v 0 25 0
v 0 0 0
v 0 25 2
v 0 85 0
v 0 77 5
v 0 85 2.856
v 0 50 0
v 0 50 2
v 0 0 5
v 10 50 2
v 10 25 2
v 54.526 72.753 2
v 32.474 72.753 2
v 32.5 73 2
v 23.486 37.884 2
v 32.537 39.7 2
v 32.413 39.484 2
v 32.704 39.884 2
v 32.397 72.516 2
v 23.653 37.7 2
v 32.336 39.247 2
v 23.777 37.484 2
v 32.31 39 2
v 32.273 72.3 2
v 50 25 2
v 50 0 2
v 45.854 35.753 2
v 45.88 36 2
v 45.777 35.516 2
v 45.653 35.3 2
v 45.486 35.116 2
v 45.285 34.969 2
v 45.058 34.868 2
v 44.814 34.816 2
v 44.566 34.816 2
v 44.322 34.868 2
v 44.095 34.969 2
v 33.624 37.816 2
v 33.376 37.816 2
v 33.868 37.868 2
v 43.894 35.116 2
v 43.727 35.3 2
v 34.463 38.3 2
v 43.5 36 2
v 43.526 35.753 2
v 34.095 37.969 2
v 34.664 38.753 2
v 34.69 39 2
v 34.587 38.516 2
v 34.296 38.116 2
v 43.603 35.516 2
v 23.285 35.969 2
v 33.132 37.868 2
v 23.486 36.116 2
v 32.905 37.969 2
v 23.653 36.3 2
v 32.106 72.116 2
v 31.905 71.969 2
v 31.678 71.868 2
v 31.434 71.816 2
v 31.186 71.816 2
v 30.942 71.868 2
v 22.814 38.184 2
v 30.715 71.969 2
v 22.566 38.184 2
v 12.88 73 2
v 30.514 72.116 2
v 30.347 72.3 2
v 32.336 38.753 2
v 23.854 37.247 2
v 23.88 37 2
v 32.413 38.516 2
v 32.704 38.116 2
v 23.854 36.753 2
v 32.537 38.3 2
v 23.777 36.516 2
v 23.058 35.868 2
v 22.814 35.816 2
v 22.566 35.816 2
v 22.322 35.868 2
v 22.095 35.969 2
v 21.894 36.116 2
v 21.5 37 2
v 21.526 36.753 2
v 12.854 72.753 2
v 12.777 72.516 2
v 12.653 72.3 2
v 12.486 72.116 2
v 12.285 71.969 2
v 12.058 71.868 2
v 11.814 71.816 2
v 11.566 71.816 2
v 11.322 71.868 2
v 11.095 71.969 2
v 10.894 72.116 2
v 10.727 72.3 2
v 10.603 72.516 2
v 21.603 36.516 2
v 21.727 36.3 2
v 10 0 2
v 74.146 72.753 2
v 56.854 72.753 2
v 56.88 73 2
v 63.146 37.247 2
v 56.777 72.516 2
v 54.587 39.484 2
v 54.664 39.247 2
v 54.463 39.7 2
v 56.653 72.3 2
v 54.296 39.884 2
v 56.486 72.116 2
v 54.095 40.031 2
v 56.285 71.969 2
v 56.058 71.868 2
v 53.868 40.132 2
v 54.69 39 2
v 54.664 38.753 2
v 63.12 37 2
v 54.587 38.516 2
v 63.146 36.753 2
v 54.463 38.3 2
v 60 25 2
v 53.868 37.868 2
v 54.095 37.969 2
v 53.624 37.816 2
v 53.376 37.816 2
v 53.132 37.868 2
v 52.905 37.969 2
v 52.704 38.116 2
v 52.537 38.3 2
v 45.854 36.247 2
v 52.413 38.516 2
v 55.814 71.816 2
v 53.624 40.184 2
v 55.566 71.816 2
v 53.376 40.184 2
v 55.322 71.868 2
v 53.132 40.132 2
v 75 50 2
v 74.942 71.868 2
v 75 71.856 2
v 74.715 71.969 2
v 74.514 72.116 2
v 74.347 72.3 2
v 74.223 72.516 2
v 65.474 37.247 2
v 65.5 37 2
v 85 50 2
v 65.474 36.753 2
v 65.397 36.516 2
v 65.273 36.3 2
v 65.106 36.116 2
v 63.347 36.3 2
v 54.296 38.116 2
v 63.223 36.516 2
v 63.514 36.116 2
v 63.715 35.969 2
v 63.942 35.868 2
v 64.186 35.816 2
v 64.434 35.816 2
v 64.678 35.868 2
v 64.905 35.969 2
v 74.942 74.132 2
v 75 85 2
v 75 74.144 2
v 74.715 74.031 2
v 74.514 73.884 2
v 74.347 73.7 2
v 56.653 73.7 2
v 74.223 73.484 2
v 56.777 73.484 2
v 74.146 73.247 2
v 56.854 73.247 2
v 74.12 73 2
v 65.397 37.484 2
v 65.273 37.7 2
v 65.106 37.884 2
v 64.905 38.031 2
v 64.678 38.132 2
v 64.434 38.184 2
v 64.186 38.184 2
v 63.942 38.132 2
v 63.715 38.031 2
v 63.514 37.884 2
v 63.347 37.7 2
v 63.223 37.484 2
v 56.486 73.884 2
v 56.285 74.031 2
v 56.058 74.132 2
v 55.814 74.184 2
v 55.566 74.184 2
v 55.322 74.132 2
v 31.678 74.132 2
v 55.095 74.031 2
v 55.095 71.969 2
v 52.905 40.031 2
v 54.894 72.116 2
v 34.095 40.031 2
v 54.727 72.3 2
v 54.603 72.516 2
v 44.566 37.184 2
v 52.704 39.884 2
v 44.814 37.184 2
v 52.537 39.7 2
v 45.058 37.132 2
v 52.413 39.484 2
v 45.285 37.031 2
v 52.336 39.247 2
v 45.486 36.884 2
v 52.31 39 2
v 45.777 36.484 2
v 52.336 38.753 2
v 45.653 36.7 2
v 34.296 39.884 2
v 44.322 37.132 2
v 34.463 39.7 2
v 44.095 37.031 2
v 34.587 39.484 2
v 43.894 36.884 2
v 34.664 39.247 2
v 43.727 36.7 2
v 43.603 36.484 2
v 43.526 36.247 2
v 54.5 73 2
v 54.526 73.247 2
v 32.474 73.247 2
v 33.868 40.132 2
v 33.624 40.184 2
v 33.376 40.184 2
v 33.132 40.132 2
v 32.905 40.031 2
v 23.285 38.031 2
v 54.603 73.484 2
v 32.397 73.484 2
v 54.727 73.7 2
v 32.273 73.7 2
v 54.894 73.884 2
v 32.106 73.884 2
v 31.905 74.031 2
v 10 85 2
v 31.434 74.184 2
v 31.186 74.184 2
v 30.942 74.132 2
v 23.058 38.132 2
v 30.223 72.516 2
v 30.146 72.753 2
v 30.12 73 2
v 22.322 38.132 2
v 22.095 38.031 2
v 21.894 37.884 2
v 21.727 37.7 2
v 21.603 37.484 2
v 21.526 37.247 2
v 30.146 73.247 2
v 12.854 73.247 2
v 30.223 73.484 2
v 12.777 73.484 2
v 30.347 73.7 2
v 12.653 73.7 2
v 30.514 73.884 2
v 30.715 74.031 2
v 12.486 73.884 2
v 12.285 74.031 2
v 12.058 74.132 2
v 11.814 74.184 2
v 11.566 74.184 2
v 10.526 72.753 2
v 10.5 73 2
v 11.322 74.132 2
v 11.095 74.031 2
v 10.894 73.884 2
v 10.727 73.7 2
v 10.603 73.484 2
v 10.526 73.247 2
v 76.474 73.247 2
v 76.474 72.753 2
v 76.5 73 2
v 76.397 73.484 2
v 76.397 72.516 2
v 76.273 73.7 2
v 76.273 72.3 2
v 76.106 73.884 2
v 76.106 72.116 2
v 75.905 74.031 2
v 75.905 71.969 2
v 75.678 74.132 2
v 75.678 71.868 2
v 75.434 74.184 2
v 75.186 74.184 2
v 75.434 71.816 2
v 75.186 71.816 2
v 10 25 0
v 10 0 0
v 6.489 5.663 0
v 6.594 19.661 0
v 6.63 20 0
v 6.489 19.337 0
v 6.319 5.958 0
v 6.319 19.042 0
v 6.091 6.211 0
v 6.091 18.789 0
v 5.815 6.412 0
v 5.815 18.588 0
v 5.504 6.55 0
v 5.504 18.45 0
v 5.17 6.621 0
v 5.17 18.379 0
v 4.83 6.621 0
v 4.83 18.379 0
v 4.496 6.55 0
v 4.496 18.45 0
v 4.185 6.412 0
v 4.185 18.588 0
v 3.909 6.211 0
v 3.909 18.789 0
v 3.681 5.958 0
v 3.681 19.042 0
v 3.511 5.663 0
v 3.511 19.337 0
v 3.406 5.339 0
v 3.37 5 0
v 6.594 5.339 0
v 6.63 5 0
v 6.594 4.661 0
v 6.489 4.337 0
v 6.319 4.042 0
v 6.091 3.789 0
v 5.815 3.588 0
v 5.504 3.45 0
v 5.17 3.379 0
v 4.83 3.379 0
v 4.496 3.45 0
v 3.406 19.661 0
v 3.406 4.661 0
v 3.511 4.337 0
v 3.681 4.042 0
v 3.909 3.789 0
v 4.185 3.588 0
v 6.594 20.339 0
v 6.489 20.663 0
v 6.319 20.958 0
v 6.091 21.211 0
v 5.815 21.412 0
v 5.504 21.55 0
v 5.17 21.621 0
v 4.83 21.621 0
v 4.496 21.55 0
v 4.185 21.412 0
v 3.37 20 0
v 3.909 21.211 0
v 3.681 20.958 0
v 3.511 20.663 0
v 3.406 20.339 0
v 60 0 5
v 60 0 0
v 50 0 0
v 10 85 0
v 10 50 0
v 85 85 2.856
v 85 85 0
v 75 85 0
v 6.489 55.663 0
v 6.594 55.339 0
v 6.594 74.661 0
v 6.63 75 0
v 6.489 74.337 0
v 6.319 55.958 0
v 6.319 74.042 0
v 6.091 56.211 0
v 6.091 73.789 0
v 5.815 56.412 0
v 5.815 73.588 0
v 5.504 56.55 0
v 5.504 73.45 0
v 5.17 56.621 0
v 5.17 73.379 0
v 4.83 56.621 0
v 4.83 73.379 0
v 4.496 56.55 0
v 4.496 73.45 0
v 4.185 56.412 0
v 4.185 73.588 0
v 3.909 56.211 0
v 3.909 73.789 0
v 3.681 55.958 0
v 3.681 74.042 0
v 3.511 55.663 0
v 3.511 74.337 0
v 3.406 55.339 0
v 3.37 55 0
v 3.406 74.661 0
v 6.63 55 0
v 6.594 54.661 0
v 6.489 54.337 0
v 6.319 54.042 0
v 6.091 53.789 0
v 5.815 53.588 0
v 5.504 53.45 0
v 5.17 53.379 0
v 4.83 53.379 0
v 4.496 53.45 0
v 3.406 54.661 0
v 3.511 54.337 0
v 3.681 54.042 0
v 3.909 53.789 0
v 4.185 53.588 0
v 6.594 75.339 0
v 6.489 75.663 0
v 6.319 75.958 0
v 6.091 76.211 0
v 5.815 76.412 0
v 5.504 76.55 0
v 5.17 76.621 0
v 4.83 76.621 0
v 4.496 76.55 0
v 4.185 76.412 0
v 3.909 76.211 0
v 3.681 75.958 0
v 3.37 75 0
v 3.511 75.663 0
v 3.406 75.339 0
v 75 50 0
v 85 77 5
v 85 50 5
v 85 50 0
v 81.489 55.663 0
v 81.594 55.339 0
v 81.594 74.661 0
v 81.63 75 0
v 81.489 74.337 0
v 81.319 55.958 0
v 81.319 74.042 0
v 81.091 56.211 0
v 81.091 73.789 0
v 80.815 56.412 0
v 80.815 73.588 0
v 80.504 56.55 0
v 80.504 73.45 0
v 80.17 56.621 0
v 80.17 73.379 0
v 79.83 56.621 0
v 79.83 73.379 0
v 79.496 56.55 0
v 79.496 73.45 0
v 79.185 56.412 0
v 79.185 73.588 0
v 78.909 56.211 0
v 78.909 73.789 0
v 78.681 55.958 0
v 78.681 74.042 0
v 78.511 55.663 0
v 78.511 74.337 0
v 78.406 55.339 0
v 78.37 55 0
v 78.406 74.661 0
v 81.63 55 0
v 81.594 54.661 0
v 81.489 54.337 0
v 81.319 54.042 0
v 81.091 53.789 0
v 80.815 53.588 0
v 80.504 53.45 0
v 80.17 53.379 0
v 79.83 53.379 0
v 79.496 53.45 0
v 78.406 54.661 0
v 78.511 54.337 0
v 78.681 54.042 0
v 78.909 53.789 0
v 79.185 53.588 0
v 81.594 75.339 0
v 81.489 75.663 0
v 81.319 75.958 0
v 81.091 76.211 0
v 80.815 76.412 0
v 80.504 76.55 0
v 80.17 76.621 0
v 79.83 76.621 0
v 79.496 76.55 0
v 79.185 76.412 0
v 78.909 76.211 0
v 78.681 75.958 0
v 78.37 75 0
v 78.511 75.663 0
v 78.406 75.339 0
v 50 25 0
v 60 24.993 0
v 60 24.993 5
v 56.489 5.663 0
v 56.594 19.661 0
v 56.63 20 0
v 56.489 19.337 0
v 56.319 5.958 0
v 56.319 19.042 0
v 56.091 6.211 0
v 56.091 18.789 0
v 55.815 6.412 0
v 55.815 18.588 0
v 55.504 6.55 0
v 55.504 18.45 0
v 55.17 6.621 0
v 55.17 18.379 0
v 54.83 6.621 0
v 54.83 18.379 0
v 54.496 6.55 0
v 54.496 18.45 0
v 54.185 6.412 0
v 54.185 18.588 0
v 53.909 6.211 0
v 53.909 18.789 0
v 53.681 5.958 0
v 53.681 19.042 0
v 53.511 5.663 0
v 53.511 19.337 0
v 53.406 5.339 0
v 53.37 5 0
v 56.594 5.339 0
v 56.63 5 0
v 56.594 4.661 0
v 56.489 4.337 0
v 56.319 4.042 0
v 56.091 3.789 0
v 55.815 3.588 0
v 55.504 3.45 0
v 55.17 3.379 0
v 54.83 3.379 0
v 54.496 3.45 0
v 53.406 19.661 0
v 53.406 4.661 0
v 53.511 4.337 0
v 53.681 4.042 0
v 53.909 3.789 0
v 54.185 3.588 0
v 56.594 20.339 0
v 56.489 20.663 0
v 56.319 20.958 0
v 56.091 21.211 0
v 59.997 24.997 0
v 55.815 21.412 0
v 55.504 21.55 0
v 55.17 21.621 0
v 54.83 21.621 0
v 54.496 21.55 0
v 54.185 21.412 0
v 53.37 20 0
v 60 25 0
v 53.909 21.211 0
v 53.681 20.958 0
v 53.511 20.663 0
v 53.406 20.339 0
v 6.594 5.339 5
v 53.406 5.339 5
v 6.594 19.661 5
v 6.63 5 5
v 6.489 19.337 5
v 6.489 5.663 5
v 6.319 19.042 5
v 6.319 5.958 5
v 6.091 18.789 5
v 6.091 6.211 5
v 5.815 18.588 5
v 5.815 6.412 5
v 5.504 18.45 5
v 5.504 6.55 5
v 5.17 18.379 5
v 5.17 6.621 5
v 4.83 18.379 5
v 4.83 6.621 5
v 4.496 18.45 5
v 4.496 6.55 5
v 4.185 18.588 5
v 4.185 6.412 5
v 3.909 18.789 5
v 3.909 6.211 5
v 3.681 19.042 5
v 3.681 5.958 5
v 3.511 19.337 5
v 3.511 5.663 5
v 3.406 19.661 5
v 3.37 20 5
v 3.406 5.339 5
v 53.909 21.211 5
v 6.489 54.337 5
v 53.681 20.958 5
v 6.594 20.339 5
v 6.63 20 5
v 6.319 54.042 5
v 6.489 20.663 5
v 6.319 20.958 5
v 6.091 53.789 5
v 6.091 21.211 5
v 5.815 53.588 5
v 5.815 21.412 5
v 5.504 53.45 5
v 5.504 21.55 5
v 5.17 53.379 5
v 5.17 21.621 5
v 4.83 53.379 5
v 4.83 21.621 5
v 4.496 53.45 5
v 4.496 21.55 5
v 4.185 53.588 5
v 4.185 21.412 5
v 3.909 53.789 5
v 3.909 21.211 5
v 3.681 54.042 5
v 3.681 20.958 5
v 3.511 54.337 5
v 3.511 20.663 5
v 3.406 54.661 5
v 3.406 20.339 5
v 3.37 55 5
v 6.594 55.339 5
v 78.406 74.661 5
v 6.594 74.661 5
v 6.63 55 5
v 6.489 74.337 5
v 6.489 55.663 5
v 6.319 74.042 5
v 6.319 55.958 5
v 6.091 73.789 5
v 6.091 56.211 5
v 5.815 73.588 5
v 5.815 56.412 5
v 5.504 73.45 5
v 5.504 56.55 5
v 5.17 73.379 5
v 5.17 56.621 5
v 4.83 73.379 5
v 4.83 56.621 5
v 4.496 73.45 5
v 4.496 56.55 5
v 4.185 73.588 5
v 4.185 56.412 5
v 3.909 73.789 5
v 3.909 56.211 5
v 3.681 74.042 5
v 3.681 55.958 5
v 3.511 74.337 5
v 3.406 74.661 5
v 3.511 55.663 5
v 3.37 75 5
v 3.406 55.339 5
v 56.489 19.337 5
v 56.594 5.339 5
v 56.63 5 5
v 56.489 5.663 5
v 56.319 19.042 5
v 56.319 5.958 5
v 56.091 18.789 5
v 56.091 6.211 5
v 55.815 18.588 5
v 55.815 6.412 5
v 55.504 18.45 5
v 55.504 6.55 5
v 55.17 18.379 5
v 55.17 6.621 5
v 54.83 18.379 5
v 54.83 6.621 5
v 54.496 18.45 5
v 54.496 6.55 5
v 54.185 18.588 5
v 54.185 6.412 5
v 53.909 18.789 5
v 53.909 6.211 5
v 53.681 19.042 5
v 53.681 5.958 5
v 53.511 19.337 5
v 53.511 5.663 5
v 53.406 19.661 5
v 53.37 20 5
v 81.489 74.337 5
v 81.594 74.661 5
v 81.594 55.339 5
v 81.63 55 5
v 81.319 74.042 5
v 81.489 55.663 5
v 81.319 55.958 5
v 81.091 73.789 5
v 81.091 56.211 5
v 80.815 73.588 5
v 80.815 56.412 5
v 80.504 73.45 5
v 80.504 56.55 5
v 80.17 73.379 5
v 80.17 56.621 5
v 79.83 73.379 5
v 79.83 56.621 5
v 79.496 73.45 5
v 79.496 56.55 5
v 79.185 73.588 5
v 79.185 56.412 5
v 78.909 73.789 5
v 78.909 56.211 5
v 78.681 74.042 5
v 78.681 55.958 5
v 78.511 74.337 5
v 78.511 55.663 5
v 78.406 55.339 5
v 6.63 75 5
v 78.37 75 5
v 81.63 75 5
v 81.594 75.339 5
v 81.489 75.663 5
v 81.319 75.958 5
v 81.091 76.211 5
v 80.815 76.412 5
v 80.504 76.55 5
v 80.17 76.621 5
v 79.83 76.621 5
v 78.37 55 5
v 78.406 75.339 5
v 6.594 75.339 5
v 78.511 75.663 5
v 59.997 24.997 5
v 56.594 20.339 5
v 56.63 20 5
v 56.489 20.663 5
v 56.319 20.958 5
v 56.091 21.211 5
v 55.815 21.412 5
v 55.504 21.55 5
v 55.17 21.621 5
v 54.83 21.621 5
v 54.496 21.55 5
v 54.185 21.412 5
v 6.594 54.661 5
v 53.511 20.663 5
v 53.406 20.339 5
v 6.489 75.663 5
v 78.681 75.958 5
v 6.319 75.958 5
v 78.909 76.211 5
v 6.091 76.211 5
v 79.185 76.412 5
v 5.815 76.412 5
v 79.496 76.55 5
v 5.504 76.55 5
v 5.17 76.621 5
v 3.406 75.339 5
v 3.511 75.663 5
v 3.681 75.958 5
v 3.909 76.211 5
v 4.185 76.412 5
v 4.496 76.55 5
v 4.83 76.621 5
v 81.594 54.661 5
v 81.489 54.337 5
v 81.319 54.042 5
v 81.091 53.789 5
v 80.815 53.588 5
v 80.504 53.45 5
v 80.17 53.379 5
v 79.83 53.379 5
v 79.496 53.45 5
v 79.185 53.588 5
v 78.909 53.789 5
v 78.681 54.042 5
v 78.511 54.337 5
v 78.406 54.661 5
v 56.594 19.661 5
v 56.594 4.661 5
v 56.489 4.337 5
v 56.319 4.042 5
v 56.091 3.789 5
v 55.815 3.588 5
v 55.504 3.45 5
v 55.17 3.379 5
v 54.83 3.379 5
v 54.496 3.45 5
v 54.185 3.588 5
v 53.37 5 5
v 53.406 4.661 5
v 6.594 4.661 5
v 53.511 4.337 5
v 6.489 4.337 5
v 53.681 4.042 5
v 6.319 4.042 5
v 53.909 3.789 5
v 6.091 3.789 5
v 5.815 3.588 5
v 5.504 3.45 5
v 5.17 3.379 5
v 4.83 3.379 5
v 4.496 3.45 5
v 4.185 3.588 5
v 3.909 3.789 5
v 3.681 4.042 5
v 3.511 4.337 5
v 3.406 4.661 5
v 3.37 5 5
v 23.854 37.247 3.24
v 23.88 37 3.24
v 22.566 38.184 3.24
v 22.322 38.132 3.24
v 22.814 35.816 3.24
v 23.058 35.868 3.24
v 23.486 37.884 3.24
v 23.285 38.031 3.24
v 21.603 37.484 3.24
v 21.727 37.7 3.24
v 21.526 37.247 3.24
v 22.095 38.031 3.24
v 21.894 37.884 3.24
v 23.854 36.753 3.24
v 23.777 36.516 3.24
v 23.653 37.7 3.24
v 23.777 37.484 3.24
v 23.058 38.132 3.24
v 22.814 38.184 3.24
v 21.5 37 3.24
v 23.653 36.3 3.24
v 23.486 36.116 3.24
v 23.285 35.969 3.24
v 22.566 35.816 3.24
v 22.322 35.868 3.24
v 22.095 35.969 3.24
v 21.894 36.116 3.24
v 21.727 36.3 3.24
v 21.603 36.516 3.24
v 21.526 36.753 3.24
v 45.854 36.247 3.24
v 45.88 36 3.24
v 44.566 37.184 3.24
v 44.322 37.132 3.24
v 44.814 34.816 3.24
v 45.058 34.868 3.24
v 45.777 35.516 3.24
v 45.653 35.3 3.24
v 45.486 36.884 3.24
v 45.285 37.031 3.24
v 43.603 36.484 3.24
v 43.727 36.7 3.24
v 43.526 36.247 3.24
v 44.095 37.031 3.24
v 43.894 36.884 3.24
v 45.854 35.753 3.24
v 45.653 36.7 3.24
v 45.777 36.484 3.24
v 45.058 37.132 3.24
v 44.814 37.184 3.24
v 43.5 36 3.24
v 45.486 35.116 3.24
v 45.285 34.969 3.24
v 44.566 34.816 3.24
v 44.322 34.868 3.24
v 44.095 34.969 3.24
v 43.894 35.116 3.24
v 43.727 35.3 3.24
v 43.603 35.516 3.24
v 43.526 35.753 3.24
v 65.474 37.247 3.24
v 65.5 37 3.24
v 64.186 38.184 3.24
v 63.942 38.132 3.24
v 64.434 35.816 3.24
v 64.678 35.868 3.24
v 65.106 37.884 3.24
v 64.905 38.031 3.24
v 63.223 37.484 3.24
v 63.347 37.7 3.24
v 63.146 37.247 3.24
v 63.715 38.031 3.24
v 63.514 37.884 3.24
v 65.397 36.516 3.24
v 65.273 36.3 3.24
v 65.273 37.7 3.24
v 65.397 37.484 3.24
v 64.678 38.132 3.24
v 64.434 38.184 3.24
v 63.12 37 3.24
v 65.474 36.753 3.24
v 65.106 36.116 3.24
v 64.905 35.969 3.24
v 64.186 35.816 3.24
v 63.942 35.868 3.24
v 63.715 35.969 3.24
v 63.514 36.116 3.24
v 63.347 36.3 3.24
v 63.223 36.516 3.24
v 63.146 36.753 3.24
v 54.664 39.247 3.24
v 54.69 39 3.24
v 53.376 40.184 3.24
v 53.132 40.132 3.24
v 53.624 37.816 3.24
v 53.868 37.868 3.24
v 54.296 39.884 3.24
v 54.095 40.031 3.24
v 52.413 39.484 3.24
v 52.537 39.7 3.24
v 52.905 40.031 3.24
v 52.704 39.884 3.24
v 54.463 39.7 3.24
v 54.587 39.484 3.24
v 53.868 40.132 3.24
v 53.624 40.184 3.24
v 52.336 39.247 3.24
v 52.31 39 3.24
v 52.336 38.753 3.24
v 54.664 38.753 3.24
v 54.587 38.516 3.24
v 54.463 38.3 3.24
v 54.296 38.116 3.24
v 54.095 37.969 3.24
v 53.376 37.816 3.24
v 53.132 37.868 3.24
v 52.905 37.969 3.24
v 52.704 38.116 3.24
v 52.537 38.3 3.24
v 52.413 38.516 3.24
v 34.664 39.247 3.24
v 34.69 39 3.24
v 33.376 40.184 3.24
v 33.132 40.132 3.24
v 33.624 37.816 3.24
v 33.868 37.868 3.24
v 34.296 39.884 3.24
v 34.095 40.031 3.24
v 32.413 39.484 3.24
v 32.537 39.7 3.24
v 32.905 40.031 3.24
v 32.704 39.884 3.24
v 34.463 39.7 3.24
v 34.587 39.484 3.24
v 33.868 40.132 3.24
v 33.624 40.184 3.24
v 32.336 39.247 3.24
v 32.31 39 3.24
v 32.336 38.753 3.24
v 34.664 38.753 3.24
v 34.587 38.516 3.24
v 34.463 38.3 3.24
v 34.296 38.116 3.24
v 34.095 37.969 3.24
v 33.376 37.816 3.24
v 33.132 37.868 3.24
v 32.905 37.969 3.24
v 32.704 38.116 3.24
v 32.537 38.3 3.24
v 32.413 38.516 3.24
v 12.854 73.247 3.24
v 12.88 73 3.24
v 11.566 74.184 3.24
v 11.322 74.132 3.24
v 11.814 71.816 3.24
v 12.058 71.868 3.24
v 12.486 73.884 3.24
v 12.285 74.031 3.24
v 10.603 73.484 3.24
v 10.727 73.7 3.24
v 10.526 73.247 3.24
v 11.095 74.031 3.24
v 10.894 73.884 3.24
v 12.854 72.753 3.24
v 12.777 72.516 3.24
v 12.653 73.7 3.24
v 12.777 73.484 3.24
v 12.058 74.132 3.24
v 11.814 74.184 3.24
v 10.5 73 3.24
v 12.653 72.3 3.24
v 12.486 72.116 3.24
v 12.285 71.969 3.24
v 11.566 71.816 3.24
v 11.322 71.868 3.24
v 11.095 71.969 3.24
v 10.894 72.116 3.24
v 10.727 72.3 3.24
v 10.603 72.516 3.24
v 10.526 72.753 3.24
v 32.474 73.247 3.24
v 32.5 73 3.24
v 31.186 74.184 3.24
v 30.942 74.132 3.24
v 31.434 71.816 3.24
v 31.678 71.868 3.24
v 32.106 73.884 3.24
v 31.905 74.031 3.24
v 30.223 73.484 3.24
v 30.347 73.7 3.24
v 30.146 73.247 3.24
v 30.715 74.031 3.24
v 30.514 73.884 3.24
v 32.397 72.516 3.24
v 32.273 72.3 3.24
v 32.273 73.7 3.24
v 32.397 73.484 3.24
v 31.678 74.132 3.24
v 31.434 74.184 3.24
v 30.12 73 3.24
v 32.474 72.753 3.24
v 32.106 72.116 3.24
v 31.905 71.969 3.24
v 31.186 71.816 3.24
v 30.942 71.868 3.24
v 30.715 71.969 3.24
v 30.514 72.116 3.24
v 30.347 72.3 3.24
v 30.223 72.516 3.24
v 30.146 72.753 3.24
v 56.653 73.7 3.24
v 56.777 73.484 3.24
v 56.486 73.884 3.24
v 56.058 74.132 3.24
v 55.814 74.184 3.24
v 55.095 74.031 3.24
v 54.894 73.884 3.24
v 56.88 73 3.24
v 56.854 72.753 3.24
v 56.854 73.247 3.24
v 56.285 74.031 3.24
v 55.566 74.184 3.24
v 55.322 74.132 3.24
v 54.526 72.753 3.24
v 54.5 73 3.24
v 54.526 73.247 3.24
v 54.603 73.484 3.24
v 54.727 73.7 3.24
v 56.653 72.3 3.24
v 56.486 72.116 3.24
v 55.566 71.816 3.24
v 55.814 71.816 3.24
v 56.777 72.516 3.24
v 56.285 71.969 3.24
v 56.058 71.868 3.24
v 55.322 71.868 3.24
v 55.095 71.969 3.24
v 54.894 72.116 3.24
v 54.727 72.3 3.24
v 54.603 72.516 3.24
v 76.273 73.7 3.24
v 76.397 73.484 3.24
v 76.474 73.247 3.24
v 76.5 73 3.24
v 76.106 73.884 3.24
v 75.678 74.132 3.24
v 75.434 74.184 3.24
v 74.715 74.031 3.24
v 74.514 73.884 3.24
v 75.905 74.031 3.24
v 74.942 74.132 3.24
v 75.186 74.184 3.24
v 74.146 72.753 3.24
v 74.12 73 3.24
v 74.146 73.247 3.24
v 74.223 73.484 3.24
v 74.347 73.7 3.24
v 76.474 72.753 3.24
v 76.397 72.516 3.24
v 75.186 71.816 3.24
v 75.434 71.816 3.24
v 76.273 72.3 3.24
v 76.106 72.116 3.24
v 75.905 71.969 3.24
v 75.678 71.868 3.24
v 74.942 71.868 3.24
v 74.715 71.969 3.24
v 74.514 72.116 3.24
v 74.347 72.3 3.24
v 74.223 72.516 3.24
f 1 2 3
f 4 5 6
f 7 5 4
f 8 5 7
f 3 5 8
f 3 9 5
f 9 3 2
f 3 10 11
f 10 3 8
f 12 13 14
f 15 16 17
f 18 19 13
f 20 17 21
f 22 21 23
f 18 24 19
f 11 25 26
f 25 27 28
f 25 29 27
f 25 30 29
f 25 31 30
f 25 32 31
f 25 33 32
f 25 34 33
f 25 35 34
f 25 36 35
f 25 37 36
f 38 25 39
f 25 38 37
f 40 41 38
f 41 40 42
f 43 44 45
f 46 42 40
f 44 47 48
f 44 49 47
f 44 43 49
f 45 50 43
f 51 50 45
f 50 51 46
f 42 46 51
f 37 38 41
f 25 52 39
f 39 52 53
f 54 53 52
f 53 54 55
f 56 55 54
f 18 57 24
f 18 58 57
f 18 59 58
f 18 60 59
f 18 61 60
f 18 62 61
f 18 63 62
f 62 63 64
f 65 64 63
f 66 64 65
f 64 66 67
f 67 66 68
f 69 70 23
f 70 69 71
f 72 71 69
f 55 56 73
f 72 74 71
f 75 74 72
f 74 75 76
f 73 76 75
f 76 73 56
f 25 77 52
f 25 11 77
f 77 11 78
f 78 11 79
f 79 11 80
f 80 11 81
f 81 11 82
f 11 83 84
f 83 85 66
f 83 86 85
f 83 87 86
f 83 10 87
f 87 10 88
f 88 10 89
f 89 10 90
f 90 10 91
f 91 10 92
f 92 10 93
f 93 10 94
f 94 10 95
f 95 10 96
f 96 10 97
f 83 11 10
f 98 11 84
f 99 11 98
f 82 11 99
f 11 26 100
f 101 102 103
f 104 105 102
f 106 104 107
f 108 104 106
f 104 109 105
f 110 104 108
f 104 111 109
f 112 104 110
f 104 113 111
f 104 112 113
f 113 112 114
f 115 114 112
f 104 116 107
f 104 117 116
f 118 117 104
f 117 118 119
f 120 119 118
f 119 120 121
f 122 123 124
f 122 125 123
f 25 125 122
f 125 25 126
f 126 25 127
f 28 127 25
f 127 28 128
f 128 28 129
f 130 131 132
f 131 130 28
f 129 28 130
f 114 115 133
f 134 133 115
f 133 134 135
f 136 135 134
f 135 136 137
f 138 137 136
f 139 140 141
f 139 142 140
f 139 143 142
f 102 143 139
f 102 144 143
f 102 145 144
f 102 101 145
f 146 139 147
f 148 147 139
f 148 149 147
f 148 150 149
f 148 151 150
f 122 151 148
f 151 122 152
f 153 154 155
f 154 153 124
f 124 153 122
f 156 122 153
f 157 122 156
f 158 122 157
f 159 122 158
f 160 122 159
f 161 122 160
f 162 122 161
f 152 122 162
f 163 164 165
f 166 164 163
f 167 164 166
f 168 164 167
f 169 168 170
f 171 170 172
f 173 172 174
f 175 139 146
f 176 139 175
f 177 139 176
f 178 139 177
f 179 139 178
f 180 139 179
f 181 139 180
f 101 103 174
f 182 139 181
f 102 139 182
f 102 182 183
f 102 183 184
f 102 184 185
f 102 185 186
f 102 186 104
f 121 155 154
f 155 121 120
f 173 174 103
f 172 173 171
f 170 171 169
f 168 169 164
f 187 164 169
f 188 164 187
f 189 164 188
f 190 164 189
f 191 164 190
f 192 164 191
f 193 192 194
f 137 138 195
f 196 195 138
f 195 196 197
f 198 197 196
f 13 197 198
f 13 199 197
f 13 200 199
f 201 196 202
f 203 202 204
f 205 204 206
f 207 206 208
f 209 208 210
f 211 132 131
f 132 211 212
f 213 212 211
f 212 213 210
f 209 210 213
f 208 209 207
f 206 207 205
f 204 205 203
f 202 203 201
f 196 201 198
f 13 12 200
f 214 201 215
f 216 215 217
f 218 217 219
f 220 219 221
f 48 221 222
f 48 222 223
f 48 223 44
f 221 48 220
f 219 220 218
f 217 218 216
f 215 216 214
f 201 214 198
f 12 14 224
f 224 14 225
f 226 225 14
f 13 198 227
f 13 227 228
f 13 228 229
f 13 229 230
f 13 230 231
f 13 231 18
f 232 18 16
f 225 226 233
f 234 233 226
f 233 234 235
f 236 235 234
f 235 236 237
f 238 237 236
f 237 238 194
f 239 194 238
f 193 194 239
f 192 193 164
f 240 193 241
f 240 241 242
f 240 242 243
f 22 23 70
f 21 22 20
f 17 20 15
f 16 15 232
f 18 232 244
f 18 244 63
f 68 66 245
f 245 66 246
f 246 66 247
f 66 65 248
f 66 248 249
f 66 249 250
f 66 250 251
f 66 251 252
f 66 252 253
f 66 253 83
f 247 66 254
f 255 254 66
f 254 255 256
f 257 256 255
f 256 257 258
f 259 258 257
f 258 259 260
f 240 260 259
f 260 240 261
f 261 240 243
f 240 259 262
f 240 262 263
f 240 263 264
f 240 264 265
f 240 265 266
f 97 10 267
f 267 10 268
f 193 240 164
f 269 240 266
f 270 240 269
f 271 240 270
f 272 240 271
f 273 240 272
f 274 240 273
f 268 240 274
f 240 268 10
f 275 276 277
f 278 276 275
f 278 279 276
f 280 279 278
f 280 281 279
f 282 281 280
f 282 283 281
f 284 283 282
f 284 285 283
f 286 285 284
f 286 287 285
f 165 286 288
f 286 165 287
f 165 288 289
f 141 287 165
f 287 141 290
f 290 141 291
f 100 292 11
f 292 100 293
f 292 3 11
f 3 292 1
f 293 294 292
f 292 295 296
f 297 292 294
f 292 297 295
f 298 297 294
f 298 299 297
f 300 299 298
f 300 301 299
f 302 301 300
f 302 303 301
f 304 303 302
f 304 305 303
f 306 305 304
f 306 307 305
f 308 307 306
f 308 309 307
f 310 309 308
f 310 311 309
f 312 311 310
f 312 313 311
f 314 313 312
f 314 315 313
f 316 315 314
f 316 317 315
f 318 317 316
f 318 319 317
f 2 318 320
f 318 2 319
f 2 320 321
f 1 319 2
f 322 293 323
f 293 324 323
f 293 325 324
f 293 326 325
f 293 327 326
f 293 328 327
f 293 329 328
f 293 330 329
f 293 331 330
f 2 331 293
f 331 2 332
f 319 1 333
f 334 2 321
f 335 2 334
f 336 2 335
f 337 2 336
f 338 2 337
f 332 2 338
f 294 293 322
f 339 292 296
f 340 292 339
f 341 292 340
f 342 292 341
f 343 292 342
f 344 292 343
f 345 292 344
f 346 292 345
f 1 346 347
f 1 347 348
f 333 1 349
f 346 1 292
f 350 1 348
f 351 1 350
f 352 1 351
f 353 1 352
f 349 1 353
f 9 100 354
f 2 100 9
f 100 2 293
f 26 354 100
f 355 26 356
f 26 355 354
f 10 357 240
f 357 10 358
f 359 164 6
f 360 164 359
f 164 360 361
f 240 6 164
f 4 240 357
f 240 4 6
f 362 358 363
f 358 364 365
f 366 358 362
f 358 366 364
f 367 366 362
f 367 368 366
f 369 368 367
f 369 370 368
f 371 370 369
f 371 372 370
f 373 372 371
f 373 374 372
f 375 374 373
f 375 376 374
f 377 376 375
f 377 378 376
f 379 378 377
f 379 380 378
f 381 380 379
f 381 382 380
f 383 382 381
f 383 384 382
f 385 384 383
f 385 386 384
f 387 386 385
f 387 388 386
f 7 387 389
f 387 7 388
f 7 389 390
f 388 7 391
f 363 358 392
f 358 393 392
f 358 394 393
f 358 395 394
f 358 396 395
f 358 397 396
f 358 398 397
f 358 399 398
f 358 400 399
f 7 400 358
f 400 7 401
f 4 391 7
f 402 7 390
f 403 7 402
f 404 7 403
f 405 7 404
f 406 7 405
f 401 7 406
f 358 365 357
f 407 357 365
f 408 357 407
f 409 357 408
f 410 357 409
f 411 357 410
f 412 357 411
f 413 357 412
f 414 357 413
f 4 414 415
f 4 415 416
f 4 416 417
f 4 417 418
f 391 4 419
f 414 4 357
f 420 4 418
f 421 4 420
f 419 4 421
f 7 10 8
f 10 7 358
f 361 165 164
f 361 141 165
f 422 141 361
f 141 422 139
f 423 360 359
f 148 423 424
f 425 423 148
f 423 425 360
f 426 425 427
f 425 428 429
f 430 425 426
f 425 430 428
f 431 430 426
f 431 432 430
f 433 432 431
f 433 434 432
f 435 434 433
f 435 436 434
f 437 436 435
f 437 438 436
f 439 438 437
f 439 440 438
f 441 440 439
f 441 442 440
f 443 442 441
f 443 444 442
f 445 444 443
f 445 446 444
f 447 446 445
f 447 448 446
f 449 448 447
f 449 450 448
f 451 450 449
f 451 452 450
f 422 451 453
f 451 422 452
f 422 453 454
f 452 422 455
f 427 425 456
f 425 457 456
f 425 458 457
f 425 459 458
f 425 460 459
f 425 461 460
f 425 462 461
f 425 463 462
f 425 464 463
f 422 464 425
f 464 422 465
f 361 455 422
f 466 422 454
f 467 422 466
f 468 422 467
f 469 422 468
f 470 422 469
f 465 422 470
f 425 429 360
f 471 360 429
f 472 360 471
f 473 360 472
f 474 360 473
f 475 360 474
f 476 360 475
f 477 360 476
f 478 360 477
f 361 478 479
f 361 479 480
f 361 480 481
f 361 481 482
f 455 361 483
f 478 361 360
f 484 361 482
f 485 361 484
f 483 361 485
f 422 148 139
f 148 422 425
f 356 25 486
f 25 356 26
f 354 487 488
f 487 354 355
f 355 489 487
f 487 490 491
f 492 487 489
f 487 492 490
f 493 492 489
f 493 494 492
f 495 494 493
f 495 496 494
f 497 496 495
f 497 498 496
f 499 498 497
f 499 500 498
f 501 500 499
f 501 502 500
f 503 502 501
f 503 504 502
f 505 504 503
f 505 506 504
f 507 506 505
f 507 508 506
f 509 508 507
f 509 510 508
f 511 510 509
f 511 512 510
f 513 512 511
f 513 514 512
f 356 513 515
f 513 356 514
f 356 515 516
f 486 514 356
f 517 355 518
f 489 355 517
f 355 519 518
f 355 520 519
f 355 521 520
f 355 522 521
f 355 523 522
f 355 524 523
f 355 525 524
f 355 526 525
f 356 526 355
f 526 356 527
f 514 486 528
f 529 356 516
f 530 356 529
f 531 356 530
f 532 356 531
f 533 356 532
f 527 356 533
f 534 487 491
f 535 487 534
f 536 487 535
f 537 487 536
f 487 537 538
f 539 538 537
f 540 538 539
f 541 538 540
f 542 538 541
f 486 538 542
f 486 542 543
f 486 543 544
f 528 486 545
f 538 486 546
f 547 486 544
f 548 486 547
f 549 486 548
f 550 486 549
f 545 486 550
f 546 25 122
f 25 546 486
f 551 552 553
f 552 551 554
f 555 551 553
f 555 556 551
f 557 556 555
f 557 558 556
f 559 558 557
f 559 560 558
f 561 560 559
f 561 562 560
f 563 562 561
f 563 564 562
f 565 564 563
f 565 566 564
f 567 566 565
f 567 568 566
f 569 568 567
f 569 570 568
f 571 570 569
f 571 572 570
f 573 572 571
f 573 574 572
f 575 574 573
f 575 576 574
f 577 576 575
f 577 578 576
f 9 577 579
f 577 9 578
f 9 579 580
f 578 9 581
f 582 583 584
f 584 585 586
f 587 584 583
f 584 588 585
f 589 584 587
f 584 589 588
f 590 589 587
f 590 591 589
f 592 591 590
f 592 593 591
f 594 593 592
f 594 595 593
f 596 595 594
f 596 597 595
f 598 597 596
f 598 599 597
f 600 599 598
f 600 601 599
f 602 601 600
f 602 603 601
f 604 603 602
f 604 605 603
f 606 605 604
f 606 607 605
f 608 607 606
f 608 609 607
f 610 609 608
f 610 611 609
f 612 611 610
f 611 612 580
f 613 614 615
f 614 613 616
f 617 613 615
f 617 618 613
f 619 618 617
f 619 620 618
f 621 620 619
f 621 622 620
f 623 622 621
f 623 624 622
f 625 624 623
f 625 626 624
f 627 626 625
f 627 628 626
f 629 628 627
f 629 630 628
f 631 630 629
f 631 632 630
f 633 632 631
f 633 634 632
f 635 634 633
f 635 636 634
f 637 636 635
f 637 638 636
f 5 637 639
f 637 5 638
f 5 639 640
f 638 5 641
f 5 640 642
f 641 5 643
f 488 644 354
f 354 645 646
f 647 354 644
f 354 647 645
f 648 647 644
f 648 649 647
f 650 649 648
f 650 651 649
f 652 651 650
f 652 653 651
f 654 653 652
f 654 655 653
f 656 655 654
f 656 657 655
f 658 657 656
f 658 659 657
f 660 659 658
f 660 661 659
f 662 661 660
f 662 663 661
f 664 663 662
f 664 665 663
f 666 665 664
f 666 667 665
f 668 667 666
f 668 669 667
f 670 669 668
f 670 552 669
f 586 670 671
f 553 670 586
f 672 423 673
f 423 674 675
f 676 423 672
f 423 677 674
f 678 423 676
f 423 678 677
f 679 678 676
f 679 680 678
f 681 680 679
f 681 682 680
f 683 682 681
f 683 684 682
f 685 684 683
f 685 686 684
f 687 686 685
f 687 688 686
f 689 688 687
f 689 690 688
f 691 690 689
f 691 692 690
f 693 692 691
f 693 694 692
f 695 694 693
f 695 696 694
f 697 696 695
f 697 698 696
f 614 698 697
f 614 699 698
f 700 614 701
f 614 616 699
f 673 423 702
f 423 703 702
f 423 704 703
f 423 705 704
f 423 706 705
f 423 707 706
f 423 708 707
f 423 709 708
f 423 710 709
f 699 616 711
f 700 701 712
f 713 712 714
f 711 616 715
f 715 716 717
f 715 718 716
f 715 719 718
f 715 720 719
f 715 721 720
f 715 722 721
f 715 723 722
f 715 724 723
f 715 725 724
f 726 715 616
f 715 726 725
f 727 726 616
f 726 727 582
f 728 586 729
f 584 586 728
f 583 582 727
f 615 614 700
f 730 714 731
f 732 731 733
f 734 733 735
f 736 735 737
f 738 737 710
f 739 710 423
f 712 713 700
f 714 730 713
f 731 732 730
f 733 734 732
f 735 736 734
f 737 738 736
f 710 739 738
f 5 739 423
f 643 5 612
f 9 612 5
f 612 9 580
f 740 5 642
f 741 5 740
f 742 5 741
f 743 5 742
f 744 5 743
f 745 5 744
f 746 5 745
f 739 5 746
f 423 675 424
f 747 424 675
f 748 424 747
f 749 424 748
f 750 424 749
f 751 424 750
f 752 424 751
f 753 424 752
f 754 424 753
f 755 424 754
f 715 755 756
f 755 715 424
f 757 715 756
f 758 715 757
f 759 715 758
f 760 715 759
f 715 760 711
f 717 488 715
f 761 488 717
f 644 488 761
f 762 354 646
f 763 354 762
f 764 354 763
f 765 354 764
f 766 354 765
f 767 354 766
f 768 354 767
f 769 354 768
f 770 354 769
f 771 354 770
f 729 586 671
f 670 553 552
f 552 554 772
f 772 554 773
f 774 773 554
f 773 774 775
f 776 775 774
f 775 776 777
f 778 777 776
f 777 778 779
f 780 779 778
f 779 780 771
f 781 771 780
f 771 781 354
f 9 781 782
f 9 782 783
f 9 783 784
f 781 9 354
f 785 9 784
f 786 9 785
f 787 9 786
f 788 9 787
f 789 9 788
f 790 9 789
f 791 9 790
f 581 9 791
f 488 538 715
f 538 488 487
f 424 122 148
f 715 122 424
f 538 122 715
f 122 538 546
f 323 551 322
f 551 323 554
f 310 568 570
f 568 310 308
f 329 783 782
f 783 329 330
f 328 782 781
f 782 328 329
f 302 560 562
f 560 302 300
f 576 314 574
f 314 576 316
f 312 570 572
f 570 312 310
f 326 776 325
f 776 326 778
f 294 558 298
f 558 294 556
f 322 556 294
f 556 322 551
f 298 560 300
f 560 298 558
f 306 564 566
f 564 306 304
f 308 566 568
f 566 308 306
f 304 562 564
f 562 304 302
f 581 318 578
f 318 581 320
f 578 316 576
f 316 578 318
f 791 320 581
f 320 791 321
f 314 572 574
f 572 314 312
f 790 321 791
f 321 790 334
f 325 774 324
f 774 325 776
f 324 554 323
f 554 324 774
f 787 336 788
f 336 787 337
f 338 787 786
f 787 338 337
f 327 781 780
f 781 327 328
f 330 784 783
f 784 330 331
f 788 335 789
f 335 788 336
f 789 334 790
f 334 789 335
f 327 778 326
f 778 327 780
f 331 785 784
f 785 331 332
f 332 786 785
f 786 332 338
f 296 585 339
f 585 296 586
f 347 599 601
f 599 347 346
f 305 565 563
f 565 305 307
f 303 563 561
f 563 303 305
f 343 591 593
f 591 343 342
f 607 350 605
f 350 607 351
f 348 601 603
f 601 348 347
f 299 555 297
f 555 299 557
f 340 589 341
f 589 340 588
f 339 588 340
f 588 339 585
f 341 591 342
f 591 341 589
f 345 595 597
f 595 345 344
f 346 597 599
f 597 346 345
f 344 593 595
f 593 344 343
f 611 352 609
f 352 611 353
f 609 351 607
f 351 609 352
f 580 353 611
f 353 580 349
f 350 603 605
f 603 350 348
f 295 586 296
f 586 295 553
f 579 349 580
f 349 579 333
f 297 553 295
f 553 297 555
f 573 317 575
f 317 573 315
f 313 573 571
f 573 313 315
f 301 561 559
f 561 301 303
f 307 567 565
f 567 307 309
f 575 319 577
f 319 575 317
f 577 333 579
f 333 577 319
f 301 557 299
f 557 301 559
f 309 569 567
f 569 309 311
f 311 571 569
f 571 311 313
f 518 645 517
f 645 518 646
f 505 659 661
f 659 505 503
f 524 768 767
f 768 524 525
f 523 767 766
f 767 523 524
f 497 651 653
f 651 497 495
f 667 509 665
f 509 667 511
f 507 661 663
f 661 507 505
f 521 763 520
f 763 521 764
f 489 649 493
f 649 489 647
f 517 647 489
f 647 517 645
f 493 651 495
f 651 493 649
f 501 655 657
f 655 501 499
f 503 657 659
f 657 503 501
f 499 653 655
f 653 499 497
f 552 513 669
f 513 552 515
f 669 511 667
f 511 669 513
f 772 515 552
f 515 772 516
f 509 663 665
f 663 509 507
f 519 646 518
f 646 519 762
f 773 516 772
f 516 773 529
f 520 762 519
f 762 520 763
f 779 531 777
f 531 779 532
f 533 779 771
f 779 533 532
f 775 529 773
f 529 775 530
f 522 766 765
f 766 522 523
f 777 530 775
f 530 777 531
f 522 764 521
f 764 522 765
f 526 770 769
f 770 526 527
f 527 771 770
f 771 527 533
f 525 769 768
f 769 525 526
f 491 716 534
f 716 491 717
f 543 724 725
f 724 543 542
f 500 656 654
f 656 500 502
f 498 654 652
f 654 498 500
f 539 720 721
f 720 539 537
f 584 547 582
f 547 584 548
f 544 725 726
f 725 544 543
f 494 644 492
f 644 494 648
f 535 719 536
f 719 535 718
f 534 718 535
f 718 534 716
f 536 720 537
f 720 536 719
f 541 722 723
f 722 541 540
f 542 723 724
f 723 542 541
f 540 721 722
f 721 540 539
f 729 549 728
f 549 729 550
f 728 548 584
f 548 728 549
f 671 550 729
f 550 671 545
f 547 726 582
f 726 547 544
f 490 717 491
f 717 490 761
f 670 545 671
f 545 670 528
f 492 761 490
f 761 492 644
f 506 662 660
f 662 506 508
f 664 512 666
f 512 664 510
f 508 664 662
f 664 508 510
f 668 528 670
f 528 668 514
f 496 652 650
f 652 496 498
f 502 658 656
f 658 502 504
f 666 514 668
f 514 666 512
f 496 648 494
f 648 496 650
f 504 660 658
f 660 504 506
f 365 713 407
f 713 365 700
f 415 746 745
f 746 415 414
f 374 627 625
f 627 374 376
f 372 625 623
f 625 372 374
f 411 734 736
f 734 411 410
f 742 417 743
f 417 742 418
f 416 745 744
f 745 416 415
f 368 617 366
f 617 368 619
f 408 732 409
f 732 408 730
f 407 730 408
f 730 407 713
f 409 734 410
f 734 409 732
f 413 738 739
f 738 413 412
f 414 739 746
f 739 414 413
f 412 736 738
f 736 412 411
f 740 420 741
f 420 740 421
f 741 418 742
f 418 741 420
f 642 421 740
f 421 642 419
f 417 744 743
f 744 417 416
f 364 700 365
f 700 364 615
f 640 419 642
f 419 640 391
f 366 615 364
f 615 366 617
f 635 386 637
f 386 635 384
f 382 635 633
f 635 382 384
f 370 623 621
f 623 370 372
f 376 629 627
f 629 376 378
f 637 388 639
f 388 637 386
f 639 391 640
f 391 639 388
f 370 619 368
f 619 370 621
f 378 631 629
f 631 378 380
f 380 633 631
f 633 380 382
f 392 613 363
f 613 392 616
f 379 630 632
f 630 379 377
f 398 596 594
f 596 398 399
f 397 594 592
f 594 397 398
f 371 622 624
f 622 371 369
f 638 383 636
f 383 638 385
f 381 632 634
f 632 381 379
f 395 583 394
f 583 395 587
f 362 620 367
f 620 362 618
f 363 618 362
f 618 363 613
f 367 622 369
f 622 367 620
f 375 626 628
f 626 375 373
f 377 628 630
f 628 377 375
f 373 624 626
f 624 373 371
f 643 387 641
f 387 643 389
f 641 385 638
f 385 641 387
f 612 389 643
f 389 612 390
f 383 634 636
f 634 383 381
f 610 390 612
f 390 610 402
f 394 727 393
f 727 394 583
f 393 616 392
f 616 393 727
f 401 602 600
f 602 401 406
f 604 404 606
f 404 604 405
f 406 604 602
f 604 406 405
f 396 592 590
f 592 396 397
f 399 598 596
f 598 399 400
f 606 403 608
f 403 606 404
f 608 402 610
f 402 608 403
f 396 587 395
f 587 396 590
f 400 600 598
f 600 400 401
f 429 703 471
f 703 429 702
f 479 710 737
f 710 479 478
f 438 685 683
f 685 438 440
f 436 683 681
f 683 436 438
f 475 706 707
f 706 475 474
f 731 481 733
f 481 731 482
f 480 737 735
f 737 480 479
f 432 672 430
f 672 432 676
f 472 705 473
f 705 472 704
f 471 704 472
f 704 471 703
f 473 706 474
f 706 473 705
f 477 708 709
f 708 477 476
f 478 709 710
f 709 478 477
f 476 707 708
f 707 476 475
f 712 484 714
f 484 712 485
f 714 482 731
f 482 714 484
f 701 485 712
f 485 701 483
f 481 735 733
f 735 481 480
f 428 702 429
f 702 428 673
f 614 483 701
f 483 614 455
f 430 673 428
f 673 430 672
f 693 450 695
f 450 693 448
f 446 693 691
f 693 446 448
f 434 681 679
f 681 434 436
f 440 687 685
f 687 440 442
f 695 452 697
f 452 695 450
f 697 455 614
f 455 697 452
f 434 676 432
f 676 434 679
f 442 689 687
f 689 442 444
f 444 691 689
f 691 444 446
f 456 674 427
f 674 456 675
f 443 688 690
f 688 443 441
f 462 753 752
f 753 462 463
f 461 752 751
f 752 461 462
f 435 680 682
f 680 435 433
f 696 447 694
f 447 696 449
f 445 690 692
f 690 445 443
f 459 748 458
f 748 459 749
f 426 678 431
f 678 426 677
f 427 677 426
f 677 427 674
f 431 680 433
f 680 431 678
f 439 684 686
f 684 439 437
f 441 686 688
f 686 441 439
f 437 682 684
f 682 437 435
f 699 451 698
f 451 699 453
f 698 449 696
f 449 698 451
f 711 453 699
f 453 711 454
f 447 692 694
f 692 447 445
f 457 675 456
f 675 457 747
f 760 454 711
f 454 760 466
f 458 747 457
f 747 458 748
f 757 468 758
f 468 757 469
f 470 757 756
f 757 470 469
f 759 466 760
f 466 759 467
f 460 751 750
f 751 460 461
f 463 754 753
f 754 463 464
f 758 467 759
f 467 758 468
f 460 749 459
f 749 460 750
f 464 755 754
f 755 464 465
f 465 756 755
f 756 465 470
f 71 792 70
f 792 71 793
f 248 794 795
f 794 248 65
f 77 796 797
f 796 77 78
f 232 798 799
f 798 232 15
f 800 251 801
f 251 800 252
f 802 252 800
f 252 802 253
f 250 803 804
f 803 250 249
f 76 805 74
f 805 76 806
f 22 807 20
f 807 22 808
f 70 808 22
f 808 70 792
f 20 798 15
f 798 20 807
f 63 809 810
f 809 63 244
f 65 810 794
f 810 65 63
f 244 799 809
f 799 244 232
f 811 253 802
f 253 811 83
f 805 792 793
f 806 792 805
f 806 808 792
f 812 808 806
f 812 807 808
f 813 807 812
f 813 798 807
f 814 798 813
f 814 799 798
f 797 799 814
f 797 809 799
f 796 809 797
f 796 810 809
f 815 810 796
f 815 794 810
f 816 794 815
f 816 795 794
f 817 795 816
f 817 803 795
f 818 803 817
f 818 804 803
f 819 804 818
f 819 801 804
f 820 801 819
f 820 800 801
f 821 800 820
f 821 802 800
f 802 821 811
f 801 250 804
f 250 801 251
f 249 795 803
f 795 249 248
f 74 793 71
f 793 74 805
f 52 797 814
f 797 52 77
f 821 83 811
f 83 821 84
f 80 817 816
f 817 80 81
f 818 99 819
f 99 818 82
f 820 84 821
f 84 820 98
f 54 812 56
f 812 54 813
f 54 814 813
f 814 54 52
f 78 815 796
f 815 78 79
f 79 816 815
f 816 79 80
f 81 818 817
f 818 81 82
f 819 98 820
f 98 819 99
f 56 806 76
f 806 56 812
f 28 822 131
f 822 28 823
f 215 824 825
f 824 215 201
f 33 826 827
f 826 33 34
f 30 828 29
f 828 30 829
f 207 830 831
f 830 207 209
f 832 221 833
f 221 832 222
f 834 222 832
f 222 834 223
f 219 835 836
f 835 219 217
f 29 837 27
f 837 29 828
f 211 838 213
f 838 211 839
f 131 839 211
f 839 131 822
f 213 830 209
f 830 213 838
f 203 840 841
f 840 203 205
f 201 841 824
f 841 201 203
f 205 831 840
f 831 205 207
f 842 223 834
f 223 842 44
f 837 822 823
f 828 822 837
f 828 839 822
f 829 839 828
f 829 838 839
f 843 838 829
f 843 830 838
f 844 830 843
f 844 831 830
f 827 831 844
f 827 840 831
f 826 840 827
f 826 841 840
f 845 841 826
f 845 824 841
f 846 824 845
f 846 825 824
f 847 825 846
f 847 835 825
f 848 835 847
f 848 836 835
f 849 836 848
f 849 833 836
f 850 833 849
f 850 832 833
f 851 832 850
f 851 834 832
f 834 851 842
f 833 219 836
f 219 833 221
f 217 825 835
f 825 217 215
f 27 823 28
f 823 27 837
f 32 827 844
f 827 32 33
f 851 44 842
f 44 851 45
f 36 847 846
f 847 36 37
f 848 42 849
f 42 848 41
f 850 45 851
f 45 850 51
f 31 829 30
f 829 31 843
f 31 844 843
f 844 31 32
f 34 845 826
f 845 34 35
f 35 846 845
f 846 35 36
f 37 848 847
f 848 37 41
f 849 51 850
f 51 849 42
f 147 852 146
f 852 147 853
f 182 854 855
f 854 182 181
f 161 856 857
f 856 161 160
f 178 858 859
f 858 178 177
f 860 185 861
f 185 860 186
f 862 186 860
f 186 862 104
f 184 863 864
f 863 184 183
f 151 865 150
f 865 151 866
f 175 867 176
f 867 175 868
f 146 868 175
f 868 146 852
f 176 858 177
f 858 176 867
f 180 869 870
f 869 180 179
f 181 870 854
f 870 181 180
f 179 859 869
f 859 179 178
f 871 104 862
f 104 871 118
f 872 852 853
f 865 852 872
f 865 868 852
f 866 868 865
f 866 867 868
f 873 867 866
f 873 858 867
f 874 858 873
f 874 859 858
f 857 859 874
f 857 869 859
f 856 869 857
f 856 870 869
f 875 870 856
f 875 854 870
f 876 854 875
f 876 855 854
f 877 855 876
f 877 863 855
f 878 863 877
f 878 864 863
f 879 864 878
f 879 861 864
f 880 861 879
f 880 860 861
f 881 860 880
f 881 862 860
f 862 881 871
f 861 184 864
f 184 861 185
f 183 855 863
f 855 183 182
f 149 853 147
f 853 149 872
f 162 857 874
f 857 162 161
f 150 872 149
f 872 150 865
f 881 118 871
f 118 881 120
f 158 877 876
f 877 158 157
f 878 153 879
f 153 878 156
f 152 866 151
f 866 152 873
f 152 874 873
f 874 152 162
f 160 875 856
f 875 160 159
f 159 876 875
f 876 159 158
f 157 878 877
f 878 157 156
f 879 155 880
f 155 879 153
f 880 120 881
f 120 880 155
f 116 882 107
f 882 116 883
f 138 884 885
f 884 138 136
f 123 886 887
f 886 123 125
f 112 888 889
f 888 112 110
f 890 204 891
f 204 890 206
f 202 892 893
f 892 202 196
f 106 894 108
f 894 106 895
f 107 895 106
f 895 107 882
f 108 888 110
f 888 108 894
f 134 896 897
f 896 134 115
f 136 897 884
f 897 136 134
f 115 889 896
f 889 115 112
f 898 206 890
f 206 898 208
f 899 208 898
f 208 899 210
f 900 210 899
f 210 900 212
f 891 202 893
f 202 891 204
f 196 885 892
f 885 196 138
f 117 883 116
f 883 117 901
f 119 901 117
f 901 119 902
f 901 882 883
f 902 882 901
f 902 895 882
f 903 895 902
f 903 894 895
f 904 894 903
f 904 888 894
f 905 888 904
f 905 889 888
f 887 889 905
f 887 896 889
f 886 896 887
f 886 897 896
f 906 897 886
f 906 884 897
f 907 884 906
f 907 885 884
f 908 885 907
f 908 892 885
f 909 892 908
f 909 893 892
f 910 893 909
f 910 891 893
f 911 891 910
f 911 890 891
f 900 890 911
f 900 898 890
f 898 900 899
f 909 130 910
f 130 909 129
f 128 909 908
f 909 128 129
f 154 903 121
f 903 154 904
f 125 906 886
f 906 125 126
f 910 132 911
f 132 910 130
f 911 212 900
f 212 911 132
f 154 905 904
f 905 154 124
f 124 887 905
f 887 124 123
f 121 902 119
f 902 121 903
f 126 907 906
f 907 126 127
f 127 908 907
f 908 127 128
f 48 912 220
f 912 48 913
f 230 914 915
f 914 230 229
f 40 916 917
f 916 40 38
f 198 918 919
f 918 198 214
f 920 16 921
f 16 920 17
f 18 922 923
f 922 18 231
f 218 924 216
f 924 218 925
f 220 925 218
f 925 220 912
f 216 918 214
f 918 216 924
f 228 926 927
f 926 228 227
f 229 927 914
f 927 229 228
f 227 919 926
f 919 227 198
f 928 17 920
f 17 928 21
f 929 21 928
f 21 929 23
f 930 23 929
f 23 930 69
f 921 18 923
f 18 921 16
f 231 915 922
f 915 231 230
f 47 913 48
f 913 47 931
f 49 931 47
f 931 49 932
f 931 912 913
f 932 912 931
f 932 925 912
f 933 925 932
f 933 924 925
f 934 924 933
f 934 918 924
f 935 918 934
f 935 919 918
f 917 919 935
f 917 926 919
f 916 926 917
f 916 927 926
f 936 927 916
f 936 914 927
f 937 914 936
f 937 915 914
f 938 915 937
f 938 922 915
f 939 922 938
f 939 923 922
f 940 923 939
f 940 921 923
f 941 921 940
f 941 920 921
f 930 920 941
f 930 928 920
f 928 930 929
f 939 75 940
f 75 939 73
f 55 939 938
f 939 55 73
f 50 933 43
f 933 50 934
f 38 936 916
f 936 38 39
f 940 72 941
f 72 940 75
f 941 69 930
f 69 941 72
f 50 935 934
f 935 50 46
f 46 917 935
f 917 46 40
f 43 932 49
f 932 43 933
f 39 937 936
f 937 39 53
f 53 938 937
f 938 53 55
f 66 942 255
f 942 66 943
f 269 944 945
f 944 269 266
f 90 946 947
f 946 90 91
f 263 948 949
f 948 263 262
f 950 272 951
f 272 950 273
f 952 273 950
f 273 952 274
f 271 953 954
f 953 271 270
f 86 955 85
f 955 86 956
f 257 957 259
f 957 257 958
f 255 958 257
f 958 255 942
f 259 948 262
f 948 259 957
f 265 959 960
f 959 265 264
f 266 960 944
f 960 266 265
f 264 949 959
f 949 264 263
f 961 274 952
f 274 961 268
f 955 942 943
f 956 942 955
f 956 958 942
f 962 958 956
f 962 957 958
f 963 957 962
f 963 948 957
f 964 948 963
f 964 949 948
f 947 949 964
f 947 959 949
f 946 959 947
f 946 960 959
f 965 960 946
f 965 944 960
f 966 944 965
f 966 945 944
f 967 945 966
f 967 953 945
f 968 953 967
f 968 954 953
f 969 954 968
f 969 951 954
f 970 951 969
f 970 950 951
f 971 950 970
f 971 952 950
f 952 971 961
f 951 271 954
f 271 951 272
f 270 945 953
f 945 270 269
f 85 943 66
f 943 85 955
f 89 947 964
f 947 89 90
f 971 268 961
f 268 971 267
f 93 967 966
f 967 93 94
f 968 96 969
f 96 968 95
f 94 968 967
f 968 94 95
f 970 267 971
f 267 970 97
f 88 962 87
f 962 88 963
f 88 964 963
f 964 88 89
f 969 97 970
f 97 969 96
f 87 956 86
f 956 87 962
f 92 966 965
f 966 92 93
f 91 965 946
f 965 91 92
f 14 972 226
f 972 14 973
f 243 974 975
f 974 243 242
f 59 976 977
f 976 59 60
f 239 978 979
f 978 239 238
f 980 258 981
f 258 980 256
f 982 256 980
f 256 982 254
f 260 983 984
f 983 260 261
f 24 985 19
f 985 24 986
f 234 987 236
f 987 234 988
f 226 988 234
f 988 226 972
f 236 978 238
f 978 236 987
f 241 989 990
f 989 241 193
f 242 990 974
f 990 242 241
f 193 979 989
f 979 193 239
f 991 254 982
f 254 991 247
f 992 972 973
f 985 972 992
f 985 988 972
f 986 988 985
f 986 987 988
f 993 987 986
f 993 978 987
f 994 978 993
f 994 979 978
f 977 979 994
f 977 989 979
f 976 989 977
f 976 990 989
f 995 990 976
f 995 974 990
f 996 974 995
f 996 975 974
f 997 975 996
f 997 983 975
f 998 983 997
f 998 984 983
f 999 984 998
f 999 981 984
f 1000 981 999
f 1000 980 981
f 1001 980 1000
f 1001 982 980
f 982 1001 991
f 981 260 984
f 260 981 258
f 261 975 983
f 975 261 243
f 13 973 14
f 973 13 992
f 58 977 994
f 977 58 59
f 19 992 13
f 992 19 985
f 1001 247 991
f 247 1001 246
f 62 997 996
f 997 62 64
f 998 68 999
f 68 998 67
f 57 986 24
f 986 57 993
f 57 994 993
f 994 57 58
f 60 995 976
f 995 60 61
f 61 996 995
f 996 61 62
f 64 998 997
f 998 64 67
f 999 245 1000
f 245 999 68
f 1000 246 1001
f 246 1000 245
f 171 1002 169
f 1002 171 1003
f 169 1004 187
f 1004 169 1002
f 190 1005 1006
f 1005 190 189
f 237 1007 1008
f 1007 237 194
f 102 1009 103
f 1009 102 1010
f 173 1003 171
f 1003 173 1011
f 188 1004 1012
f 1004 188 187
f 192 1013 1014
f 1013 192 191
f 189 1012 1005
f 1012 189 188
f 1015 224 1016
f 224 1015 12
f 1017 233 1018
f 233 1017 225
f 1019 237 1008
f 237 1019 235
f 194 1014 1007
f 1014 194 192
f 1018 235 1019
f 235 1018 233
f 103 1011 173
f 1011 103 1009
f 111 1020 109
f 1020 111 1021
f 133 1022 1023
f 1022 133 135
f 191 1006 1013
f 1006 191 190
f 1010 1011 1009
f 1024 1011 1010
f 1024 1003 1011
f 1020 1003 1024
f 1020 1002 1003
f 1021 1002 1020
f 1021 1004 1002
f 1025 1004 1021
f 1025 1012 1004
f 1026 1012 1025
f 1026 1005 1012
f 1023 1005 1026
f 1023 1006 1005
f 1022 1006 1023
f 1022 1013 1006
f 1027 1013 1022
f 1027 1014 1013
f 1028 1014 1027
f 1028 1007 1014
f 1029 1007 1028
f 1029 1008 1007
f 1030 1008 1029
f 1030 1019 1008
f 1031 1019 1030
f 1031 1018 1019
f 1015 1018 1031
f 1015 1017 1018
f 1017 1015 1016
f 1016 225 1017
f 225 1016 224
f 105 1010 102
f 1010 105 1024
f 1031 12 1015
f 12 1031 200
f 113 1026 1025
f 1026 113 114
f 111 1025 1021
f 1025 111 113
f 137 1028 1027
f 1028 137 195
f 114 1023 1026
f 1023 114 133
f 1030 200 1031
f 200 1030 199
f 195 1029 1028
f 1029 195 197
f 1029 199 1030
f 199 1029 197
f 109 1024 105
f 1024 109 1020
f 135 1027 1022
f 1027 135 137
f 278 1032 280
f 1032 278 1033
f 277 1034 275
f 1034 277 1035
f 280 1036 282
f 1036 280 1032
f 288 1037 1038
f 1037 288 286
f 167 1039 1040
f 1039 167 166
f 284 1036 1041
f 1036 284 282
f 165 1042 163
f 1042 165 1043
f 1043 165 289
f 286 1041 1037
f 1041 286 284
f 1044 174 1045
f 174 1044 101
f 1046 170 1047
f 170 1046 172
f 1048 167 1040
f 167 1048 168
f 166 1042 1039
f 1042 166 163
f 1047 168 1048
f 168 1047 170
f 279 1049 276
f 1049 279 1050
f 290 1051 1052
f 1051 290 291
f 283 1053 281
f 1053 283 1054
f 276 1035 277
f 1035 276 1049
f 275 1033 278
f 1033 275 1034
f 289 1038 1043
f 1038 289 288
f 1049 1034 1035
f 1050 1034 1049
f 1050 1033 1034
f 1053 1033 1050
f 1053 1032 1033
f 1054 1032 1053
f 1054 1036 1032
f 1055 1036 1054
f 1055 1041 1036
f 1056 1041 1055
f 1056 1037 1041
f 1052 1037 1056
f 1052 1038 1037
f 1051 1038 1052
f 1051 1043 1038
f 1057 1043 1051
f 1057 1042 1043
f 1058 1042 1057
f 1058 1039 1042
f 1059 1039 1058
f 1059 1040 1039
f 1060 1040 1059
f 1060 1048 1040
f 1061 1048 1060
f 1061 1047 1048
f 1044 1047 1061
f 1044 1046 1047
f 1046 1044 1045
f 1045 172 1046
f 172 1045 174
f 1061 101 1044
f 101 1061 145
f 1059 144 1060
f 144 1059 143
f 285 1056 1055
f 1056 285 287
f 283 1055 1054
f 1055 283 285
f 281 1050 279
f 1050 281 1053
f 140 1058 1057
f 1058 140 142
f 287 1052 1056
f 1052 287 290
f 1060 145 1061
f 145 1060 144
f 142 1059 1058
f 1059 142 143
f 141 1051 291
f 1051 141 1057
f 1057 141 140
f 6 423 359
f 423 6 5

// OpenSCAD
length=85;
wrist=60;
width=85;
res=30;
//length
difference(){
union(){
cube([10,25,2]); 
translate([0,length-35,0])cube([10,35,2]);
translate([wrist+25-10,length-35,0]) cube([10,35,2]);
translate([wrist-10,0,0]) cube([10,25,2]);   
translate([0,0,2])cube([wrist+25,length,3]);
}
union(){
translate([85,50,0]) rotate([0,0,45+180]) cube([35.36,50,6]);
translate([wrist,0,0]) cube([length-wrist,25,6]);
    
translate([5,5,0]) cylinder(10,r=3.26/2,true,$fn=30);
translate([5,20,0]) cylinder(10,r=3.26/2,true,$fn=30);   
translate([wrist-5,5,0]) cylinder(10,r=3.26/2,true,$fn=30);
translate([wrist-5,20,0]) cylinder(10,r=3.26/2,true,$fn=30);
    
translate([5,length-10,0]) cylinder(10,r=3.26/2,true,$fn=30);
translate([5,length-30,0]) cylinder(10,r=3.26/2,true,$fn=30);
translate([wrist+25-5,length-10,0]) cylinder(10,r=3.26/2,true,$fn=30);
translate([wrist+25-5,length-30,0]) cylinder(10,r=3.26/2,true,$fn=30);

translate([22.69,37,2]) cylinder(1.24,r=2.38/2,true,$fn=res);
translate([44.69,36,2]) cylinder(1.24,r=2.38/2,true,$fn=res);
translate([64.31,37,2]) cylinder(1.24,r=2.38/2,true,$fn=res); 
translate([53.5,39,2]) cylinder(1.24,r=2.38/2,true,$fn=res);
translate([33.5,39,2]) cylinder(1.24,r=2.38/2,true,$fn=res);
    
translate([11.69,73,2]) cylinder(1.24,r=2.38/2,true,$fn=res);
translate([31.31,73,2]) cylinder(1.24,r=2.38/2,true,$fn=res);
translate([55.69,73,2]) cylinder(1.24,r=2.38/2,true,$fn=res);  
translate([75.31,73,2]) cylinder(1.24,r=2.38/2,true,$fn=res);     
    
translate([0,length-8,5]) rotate([360-15,0,0]) cube([width,50,5]);

}
}
